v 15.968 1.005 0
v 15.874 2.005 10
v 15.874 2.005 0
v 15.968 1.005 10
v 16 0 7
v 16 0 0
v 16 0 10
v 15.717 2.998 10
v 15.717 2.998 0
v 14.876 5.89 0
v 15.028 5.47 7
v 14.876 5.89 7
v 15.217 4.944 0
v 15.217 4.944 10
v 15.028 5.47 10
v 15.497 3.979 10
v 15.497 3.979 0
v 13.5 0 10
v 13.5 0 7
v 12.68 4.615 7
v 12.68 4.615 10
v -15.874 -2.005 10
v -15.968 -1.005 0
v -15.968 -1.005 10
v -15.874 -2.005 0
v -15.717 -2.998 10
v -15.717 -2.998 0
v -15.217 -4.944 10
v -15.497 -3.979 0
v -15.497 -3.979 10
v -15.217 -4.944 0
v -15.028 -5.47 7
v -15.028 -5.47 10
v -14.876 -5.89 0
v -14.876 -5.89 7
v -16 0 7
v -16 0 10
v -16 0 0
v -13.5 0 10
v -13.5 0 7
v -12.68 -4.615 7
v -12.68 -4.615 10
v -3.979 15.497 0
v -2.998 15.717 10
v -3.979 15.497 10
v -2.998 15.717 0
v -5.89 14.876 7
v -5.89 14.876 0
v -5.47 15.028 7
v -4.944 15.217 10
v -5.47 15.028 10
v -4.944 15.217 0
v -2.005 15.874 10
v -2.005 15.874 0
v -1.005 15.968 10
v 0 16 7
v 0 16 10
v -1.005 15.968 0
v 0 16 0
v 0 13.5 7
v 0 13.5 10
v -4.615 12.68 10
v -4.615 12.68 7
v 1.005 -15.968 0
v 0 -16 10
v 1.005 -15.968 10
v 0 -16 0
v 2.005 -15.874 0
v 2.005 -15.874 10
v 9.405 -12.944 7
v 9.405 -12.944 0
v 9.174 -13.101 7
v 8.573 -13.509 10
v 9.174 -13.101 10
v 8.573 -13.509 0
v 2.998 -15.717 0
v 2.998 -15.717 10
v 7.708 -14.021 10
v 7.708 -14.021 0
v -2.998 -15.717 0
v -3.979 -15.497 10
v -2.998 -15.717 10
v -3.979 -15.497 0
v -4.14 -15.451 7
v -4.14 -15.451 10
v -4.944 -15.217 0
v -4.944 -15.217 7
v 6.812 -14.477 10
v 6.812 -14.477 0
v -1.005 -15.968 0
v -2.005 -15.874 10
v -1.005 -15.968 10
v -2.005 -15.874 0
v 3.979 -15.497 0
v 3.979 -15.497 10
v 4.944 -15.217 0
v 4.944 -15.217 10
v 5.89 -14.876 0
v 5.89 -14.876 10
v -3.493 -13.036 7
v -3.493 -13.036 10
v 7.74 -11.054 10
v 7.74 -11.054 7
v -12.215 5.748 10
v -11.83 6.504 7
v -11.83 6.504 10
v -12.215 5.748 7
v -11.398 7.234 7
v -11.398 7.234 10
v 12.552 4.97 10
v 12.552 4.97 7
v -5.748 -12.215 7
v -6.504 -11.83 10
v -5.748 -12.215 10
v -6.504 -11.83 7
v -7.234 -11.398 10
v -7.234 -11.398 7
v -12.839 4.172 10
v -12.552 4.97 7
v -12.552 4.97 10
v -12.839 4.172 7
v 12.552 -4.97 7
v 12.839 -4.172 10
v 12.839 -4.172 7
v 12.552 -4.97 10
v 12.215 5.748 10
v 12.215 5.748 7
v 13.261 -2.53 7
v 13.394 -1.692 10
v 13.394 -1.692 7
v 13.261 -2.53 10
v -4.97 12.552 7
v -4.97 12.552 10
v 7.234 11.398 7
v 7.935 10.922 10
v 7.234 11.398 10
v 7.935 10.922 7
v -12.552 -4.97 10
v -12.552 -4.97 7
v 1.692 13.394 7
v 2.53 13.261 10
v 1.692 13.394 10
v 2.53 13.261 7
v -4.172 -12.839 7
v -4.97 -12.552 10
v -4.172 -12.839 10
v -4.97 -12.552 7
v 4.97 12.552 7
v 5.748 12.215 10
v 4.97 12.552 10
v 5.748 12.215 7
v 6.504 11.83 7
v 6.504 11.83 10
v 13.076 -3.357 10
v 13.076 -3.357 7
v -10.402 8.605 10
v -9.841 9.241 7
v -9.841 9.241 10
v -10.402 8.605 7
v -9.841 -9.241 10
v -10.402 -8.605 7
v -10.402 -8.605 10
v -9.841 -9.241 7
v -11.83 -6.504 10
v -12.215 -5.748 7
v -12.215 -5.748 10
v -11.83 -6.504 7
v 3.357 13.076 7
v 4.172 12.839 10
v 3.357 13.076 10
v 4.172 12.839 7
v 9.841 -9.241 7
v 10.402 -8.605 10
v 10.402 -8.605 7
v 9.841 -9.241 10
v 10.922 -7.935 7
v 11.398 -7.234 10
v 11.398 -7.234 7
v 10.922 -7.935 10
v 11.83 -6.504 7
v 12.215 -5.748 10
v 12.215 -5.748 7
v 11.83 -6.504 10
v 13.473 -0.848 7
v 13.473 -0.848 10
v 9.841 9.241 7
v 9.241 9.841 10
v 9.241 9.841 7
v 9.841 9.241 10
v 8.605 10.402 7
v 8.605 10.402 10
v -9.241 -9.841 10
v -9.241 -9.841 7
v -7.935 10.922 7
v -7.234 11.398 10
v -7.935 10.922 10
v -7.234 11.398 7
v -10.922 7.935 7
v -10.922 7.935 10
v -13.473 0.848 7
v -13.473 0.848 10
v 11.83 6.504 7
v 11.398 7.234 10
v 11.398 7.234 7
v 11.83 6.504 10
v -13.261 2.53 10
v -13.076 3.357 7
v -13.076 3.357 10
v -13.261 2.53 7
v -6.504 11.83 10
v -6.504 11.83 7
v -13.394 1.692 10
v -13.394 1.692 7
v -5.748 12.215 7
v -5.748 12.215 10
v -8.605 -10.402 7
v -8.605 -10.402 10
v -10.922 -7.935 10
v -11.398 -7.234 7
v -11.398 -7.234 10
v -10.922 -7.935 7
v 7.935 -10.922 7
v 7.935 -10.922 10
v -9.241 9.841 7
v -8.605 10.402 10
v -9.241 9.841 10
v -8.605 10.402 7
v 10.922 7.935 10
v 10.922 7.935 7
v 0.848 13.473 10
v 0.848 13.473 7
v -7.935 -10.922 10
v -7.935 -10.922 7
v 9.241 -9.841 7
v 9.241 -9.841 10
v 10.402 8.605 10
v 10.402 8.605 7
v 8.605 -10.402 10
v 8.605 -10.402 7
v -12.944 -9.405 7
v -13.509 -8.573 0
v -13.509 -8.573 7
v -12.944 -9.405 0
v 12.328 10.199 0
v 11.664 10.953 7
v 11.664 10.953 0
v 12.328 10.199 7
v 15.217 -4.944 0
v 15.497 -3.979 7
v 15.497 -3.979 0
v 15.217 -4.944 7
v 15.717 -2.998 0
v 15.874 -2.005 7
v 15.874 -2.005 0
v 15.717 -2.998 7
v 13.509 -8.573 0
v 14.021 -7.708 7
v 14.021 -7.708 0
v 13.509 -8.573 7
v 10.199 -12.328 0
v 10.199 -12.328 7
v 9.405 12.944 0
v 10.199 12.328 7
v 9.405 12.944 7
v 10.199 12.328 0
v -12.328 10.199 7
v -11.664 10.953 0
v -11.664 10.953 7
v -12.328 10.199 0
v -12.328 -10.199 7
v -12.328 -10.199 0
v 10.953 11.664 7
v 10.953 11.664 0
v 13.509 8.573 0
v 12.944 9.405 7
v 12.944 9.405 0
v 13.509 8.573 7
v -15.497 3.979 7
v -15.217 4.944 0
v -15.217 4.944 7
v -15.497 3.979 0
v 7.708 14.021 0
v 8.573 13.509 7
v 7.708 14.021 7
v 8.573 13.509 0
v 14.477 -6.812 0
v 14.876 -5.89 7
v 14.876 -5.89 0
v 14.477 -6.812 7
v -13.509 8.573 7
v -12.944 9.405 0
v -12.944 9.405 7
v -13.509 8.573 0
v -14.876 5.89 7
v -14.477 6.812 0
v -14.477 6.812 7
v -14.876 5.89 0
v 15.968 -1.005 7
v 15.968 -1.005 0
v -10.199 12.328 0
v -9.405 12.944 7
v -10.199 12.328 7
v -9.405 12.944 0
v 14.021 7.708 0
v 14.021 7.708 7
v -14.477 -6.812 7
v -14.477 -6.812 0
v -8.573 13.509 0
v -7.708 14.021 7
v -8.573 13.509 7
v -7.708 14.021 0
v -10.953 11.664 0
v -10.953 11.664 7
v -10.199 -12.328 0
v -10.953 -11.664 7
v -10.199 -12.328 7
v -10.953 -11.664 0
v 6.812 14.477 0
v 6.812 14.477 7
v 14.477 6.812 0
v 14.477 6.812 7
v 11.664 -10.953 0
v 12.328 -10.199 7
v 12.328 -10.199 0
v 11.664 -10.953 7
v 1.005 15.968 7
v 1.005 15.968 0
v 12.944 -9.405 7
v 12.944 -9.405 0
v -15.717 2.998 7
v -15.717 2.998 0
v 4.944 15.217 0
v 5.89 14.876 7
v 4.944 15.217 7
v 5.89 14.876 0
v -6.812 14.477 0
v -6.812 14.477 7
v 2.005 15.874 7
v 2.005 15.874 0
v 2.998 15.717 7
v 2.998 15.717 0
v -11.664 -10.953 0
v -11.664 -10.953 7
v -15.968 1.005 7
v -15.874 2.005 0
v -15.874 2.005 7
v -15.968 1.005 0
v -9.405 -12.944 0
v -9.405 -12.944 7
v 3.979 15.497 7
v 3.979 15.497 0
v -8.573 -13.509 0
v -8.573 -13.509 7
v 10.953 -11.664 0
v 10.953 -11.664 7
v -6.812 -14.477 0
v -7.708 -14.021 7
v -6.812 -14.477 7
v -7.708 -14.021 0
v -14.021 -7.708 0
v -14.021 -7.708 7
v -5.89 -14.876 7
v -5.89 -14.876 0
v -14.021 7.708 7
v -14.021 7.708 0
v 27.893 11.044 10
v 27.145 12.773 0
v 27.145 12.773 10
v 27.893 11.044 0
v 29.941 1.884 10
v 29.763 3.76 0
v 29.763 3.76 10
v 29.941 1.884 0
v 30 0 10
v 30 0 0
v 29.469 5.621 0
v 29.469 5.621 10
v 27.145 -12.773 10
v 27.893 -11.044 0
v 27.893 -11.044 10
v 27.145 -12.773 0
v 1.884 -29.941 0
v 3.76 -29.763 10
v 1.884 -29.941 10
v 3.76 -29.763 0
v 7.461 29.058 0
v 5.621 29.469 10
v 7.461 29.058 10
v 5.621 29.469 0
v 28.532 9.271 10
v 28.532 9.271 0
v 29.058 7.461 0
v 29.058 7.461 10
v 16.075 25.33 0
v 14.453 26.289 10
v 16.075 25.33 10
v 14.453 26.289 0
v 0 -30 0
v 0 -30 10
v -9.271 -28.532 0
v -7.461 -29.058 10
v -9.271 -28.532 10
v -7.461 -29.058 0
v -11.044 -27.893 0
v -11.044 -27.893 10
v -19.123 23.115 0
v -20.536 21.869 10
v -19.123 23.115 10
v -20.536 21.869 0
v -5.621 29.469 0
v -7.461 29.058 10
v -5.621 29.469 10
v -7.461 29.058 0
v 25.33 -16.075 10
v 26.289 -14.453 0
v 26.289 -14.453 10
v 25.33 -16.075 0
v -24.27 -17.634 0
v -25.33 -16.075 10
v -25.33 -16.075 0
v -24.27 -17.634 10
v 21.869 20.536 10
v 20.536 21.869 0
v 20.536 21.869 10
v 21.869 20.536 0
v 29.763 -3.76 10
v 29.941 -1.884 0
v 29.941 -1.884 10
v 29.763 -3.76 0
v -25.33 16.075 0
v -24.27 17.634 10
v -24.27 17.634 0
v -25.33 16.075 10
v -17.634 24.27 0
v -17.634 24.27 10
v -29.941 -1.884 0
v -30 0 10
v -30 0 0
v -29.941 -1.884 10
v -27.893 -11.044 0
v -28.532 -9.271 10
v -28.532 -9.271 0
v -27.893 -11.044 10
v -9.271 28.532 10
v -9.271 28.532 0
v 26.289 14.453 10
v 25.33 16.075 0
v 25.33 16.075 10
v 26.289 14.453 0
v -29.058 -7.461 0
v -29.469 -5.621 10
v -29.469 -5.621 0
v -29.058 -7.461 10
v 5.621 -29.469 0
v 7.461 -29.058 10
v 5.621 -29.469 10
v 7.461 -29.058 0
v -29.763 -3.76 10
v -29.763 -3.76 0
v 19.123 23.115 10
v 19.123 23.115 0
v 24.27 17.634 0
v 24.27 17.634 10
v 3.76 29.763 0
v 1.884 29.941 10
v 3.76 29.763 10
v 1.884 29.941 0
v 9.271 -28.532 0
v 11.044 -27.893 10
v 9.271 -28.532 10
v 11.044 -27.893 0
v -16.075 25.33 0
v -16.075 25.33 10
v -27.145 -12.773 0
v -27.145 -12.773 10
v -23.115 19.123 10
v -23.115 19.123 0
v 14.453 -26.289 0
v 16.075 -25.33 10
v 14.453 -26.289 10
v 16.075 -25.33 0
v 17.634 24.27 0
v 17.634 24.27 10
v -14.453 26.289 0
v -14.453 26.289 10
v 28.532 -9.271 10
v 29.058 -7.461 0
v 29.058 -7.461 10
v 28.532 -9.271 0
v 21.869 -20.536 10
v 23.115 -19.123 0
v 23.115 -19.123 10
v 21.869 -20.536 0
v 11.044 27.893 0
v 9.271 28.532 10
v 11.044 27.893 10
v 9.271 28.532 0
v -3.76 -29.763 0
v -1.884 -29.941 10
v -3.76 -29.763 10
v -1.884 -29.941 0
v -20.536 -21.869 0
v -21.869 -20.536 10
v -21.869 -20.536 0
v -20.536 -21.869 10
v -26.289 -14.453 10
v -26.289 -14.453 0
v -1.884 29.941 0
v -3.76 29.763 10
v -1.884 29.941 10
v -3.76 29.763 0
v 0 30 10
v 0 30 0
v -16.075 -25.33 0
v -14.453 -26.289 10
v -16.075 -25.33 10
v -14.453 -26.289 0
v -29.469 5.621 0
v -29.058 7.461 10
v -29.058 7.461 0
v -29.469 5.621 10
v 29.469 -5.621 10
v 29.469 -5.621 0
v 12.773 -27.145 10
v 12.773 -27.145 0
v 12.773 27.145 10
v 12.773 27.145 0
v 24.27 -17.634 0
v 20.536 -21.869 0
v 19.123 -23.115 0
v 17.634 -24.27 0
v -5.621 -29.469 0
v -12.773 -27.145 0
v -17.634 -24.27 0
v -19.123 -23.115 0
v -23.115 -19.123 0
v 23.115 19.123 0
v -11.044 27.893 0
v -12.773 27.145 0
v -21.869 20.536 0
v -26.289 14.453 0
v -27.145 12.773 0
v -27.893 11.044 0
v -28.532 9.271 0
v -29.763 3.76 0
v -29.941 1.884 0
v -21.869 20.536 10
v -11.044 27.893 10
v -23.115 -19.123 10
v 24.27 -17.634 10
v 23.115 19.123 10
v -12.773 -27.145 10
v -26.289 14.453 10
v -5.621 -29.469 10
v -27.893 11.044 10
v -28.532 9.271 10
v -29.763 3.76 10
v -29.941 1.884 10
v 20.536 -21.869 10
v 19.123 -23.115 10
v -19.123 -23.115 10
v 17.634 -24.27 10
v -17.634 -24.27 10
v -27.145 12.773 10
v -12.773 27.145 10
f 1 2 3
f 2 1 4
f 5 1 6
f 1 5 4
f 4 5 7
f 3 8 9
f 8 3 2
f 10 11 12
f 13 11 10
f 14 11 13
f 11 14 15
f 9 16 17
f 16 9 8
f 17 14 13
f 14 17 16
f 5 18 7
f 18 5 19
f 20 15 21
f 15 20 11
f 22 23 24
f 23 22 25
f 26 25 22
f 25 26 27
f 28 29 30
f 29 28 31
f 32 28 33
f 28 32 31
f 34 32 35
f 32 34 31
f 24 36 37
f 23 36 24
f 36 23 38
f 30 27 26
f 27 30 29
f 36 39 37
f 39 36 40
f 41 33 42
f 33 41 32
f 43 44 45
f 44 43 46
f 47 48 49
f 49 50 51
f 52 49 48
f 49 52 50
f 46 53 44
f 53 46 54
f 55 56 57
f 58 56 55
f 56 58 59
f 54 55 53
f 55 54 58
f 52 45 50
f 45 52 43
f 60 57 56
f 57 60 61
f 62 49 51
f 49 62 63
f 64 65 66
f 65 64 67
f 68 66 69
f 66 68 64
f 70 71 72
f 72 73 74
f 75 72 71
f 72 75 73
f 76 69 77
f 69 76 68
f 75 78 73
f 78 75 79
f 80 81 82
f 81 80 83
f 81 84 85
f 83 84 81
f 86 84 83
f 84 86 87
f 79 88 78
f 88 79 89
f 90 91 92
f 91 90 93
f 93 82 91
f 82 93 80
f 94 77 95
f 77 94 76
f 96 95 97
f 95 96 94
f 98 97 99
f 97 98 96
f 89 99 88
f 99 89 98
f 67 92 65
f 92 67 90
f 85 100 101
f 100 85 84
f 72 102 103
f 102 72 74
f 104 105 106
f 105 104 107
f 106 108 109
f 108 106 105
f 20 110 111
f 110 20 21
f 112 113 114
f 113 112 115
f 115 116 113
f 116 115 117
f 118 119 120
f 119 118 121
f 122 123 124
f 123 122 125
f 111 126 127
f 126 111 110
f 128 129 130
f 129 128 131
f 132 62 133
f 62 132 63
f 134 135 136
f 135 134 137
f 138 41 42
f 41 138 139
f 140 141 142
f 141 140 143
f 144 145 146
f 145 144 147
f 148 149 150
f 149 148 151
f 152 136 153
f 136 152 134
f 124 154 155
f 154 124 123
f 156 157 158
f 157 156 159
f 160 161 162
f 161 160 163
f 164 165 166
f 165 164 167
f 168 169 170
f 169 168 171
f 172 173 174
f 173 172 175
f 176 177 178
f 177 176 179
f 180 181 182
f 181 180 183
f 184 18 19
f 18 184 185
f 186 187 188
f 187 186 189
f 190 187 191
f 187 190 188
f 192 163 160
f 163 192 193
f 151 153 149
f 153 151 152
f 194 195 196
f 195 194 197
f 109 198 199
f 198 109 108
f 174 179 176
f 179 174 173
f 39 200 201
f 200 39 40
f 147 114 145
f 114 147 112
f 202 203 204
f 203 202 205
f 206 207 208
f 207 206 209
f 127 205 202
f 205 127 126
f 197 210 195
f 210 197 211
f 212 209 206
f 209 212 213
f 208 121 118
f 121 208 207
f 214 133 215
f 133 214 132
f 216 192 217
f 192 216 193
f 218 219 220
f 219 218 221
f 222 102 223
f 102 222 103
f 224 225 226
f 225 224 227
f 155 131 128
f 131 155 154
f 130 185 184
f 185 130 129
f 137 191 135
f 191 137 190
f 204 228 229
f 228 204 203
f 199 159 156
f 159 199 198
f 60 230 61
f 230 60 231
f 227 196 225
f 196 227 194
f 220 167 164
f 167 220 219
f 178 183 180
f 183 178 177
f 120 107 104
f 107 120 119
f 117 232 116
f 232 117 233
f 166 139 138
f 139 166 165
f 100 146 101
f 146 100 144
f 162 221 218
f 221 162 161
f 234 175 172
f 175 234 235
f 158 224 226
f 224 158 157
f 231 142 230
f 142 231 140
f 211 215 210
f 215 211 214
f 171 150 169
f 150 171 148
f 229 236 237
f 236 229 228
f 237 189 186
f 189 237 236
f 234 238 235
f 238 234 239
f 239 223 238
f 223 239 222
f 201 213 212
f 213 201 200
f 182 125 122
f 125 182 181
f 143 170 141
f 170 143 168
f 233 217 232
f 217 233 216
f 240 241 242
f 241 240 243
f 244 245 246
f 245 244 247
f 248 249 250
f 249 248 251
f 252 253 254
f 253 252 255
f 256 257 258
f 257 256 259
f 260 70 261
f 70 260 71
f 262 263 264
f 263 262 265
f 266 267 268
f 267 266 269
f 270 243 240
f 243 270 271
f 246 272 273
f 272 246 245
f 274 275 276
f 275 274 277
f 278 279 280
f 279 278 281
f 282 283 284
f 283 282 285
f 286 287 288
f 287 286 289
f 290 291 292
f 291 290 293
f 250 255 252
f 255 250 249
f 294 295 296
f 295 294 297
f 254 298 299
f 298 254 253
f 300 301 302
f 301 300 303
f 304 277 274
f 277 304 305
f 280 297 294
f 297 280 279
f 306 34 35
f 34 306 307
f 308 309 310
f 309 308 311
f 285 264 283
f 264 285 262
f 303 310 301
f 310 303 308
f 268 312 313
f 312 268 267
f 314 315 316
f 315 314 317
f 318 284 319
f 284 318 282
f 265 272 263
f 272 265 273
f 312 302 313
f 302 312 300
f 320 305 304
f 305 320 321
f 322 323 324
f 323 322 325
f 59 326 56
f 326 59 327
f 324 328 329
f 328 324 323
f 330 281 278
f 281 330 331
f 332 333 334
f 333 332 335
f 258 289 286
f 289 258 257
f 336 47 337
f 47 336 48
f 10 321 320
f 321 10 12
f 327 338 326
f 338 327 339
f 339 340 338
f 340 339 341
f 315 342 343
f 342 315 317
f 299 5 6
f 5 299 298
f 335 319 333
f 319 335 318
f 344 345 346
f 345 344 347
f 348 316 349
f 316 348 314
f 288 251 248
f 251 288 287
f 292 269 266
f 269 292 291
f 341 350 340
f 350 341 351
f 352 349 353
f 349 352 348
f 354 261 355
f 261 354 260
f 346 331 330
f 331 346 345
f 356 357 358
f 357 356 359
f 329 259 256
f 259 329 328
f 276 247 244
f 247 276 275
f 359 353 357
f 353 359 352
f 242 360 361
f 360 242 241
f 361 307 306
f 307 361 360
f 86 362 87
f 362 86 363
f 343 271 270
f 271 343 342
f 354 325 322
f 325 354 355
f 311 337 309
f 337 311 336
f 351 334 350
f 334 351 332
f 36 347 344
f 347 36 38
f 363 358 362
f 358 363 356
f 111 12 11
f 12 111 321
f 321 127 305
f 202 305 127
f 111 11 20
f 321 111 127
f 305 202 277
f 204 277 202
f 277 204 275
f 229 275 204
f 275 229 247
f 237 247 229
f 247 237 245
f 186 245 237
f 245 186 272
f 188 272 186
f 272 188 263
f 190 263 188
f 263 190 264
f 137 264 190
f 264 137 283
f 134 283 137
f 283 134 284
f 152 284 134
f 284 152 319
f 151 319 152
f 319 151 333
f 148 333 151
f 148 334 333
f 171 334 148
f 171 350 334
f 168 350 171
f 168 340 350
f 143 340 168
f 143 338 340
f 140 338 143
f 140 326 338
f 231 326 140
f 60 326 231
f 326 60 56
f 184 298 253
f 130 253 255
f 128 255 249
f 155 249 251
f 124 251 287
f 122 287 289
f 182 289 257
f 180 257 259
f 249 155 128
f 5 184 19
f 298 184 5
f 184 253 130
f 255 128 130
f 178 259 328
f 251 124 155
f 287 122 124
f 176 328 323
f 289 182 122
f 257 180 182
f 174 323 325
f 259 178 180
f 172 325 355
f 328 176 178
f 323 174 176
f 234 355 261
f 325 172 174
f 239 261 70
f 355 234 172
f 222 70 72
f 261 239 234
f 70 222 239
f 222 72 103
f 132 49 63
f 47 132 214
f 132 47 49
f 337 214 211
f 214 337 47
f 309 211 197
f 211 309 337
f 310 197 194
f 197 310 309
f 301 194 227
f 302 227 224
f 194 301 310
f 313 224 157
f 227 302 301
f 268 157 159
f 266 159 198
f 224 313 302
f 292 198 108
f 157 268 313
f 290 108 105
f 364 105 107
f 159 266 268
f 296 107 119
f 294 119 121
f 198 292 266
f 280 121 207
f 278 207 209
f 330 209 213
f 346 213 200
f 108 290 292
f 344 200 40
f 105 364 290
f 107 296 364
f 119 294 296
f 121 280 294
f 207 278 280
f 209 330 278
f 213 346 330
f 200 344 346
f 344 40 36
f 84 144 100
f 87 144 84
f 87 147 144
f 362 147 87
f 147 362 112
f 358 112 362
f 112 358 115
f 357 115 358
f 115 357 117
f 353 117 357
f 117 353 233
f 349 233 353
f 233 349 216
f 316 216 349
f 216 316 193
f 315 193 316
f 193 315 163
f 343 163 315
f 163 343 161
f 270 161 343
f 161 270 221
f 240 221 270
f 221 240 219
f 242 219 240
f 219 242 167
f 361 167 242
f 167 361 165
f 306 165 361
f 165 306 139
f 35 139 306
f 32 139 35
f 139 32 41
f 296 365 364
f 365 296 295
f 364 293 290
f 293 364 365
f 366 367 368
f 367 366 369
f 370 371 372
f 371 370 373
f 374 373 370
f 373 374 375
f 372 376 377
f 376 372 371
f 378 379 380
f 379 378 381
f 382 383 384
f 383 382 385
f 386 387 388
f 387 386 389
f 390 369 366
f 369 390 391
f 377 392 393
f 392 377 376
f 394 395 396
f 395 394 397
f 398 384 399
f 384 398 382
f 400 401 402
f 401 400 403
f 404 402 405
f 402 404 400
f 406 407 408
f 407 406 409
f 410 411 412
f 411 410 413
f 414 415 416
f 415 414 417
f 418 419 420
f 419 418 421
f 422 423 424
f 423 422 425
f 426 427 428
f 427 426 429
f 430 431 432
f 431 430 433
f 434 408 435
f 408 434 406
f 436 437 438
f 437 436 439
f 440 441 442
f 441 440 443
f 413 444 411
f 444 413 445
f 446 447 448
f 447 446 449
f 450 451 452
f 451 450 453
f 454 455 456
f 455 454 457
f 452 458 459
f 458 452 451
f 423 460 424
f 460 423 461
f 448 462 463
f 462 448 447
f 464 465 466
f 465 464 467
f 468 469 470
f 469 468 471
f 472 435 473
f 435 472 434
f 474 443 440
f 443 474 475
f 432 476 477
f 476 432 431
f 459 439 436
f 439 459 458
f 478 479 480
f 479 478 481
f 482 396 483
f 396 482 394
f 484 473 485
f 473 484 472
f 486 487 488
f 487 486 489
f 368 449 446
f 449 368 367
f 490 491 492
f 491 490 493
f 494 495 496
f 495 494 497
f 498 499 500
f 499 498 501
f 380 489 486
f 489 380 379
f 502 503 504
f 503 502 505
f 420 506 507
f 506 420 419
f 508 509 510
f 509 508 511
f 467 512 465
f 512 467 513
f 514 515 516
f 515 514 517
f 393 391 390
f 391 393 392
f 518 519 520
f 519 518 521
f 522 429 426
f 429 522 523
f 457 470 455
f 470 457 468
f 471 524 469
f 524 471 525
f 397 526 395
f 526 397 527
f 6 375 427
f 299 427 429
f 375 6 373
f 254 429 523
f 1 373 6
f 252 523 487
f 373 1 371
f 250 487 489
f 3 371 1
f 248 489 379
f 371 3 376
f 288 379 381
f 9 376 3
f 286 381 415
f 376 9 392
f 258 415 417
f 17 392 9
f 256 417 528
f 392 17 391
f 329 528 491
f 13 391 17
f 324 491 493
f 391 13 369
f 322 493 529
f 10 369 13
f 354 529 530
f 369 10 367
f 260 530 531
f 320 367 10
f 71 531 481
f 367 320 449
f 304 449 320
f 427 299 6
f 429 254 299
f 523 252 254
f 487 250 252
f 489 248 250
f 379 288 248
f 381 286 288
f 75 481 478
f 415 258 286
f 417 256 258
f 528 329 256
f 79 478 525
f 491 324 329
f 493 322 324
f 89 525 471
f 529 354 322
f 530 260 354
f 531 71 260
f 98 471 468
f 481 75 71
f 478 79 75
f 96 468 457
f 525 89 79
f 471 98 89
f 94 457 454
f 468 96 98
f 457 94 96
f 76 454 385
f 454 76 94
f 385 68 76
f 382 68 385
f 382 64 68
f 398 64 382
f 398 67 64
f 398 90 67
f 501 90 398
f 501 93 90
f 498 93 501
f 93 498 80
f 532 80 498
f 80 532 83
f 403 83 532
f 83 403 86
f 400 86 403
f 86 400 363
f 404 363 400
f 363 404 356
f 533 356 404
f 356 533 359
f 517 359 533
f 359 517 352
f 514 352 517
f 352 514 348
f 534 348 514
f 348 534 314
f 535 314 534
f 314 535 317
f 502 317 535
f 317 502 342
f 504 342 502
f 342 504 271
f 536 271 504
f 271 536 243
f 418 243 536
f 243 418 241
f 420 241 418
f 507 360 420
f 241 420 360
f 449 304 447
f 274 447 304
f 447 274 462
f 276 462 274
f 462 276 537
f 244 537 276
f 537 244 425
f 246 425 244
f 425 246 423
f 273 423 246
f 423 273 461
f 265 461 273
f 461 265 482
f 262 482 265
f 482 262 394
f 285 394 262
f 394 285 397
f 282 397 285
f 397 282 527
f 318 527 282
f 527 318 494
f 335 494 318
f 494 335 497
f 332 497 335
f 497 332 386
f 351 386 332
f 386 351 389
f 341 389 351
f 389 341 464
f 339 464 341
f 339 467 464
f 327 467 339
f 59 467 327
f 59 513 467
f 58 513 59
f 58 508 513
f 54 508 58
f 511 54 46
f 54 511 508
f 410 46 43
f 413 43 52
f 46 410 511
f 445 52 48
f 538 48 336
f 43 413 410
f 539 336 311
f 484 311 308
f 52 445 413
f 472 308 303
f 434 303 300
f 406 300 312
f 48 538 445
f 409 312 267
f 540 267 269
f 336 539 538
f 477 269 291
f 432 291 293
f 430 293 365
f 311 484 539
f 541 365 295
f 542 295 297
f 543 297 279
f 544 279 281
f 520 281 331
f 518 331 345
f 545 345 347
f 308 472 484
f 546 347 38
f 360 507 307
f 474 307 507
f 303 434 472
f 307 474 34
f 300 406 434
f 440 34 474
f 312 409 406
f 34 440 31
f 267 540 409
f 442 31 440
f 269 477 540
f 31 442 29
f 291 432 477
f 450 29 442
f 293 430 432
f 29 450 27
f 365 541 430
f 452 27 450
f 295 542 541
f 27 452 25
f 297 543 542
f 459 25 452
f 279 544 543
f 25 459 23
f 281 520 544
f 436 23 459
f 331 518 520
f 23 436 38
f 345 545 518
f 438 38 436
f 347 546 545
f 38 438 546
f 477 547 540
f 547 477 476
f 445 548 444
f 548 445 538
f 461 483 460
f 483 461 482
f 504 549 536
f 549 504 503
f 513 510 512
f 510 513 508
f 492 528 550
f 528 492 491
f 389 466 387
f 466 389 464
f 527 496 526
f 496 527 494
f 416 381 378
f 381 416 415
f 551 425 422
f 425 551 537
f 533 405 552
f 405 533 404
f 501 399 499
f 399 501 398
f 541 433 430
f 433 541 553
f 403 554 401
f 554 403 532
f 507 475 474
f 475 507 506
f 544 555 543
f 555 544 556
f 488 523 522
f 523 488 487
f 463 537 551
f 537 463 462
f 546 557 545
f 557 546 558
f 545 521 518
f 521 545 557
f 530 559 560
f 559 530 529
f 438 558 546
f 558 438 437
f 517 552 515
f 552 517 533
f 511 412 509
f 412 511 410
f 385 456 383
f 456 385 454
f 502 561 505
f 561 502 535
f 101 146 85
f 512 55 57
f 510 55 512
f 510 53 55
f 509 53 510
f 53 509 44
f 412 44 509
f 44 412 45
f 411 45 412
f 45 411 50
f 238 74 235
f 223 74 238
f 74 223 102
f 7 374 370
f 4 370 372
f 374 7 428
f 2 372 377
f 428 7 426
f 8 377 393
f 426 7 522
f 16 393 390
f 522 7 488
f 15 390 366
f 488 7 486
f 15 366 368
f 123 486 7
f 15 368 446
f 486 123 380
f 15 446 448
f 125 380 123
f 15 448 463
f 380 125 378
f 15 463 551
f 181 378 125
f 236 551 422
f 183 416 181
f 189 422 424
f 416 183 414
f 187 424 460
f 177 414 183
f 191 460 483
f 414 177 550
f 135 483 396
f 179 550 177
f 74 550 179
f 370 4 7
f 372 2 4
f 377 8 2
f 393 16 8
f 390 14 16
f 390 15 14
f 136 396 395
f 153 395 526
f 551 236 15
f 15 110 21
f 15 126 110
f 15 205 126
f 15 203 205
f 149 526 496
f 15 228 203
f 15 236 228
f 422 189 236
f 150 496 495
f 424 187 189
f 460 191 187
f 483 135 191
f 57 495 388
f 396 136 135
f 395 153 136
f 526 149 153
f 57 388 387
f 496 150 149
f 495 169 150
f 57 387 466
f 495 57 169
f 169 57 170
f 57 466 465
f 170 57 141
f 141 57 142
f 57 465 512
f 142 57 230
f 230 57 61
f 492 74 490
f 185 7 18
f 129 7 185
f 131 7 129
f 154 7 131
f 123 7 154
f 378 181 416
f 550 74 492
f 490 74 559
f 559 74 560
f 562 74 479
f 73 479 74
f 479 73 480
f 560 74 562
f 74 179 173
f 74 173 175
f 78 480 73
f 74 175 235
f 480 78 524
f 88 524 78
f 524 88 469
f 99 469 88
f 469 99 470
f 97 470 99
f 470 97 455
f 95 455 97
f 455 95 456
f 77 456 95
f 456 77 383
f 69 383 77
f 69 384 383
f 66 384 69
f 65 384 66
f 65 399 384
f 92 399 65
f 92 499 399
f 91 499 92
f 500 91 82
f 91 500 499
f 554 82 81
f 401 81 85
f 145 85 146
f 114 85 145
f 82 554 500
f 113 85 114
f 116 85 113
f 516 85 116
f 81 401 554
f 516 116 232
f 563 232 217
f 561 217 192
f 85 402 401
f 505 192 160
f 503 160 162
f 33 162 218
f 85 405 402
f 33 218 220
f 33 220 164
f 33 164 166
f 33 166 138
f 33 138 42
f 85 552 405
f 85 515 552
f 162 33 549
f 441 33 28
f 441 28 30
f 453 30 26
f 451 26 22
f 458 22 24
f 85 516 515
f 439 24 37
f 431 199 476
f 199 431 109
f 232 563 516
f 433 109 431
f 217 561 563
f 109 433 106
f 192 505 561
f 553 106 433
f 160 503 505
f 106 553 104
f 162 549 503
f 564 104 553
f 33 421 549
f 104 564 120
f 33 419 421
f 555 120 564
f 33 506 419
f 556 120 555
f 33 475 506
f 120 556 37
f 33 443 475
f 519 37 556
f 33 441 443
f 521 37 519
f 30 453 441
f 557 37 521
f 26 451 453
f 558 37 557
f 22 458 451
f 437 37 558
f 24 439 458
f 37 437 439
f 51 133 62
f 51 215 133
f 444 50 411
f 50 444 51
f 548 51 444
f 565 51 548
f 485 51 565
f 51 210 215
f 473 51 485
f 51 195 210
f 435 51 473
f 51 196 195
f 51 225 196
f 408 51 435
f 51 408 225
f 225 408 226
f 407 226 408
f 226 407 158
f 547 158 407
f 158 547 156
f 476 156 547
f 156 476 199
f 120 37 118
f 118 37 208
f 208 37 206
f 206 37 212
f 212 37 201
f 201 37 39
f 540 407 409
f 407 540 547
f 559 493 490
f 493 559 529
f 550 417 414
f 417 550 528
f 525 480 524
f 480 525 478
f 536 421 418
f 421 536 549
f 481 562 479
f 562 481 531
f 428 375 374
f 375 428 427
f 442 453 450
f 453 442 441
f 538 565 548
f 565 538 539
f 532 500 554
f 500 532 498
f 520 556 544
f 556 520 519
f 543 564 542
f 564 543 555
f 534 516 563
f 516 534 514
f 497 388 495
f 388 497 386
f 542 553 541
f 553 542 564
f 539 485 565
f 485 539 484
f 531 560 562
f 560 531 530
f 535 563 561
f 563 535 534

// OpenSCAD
sides = 100;
socket_diameter = 27; // mm
socket_depth = 10;

notch_start = 5; // mm
notch_end = 8; // mm
big_notch_width = 12; //mm
reg_notch_width = 4; // mm

module socket_negative(){
    union(){
        translate([0,0, 1]) cylinder(d=socket_diameter, h=socket_depth, $fn=sides); //socket
        translate([0,0, -3])  cylinder(d=socket_diameter+5, h=10, $fn=sides);  // notch ring

        translate([0,0,-1]) sector(12, socket_diameter+5, 0, 20);
        translate([0,0,-1]) sector(12, socket_diameter+5, 180, 200);
        translate([0,0,-1]) sector(12, socket_diameter+5, 90, 110);
        translate([0,0,-1]) sector(12, socket_diameter+5, 255, 305);
        
        translate([0,0, -9])  cylinder(d=socket_diameter+5, h=10, $fn=sides);  //for space in front
        //#translate([0,0, 8])  cylinder(d=socket_diameter+5, h=10, $fn=sides);  //for space in the back
    }
}


module sector(h, d, a1, a2) {
    if (a2 - a1 > 180) {
        difference() {
            cylinder(h=h, d=d, $fn=sides);
            translate([0,0,-0.5]) sector(h+1, d+1, a2-360, a1); 
        }
    } else {
        difference() {
            cylinder(h=h, d=d, $fn=sides);
            rotate([0,0,a1]) translate([-d/2, -d/2, -0.5])
                cube([d, d/2, h+1]);
            rotate([0,0,a2]) translate([-d/2, 0, -0.5])
                cube([d, d/2, h+1]);
        }
    }
}    


module socket(){
    difference(){
      translate([0,0, 0])  cylinder(d=60, h=10, $fn=sides);  //for space in front
      socket_negative();
    }
}


socket();
